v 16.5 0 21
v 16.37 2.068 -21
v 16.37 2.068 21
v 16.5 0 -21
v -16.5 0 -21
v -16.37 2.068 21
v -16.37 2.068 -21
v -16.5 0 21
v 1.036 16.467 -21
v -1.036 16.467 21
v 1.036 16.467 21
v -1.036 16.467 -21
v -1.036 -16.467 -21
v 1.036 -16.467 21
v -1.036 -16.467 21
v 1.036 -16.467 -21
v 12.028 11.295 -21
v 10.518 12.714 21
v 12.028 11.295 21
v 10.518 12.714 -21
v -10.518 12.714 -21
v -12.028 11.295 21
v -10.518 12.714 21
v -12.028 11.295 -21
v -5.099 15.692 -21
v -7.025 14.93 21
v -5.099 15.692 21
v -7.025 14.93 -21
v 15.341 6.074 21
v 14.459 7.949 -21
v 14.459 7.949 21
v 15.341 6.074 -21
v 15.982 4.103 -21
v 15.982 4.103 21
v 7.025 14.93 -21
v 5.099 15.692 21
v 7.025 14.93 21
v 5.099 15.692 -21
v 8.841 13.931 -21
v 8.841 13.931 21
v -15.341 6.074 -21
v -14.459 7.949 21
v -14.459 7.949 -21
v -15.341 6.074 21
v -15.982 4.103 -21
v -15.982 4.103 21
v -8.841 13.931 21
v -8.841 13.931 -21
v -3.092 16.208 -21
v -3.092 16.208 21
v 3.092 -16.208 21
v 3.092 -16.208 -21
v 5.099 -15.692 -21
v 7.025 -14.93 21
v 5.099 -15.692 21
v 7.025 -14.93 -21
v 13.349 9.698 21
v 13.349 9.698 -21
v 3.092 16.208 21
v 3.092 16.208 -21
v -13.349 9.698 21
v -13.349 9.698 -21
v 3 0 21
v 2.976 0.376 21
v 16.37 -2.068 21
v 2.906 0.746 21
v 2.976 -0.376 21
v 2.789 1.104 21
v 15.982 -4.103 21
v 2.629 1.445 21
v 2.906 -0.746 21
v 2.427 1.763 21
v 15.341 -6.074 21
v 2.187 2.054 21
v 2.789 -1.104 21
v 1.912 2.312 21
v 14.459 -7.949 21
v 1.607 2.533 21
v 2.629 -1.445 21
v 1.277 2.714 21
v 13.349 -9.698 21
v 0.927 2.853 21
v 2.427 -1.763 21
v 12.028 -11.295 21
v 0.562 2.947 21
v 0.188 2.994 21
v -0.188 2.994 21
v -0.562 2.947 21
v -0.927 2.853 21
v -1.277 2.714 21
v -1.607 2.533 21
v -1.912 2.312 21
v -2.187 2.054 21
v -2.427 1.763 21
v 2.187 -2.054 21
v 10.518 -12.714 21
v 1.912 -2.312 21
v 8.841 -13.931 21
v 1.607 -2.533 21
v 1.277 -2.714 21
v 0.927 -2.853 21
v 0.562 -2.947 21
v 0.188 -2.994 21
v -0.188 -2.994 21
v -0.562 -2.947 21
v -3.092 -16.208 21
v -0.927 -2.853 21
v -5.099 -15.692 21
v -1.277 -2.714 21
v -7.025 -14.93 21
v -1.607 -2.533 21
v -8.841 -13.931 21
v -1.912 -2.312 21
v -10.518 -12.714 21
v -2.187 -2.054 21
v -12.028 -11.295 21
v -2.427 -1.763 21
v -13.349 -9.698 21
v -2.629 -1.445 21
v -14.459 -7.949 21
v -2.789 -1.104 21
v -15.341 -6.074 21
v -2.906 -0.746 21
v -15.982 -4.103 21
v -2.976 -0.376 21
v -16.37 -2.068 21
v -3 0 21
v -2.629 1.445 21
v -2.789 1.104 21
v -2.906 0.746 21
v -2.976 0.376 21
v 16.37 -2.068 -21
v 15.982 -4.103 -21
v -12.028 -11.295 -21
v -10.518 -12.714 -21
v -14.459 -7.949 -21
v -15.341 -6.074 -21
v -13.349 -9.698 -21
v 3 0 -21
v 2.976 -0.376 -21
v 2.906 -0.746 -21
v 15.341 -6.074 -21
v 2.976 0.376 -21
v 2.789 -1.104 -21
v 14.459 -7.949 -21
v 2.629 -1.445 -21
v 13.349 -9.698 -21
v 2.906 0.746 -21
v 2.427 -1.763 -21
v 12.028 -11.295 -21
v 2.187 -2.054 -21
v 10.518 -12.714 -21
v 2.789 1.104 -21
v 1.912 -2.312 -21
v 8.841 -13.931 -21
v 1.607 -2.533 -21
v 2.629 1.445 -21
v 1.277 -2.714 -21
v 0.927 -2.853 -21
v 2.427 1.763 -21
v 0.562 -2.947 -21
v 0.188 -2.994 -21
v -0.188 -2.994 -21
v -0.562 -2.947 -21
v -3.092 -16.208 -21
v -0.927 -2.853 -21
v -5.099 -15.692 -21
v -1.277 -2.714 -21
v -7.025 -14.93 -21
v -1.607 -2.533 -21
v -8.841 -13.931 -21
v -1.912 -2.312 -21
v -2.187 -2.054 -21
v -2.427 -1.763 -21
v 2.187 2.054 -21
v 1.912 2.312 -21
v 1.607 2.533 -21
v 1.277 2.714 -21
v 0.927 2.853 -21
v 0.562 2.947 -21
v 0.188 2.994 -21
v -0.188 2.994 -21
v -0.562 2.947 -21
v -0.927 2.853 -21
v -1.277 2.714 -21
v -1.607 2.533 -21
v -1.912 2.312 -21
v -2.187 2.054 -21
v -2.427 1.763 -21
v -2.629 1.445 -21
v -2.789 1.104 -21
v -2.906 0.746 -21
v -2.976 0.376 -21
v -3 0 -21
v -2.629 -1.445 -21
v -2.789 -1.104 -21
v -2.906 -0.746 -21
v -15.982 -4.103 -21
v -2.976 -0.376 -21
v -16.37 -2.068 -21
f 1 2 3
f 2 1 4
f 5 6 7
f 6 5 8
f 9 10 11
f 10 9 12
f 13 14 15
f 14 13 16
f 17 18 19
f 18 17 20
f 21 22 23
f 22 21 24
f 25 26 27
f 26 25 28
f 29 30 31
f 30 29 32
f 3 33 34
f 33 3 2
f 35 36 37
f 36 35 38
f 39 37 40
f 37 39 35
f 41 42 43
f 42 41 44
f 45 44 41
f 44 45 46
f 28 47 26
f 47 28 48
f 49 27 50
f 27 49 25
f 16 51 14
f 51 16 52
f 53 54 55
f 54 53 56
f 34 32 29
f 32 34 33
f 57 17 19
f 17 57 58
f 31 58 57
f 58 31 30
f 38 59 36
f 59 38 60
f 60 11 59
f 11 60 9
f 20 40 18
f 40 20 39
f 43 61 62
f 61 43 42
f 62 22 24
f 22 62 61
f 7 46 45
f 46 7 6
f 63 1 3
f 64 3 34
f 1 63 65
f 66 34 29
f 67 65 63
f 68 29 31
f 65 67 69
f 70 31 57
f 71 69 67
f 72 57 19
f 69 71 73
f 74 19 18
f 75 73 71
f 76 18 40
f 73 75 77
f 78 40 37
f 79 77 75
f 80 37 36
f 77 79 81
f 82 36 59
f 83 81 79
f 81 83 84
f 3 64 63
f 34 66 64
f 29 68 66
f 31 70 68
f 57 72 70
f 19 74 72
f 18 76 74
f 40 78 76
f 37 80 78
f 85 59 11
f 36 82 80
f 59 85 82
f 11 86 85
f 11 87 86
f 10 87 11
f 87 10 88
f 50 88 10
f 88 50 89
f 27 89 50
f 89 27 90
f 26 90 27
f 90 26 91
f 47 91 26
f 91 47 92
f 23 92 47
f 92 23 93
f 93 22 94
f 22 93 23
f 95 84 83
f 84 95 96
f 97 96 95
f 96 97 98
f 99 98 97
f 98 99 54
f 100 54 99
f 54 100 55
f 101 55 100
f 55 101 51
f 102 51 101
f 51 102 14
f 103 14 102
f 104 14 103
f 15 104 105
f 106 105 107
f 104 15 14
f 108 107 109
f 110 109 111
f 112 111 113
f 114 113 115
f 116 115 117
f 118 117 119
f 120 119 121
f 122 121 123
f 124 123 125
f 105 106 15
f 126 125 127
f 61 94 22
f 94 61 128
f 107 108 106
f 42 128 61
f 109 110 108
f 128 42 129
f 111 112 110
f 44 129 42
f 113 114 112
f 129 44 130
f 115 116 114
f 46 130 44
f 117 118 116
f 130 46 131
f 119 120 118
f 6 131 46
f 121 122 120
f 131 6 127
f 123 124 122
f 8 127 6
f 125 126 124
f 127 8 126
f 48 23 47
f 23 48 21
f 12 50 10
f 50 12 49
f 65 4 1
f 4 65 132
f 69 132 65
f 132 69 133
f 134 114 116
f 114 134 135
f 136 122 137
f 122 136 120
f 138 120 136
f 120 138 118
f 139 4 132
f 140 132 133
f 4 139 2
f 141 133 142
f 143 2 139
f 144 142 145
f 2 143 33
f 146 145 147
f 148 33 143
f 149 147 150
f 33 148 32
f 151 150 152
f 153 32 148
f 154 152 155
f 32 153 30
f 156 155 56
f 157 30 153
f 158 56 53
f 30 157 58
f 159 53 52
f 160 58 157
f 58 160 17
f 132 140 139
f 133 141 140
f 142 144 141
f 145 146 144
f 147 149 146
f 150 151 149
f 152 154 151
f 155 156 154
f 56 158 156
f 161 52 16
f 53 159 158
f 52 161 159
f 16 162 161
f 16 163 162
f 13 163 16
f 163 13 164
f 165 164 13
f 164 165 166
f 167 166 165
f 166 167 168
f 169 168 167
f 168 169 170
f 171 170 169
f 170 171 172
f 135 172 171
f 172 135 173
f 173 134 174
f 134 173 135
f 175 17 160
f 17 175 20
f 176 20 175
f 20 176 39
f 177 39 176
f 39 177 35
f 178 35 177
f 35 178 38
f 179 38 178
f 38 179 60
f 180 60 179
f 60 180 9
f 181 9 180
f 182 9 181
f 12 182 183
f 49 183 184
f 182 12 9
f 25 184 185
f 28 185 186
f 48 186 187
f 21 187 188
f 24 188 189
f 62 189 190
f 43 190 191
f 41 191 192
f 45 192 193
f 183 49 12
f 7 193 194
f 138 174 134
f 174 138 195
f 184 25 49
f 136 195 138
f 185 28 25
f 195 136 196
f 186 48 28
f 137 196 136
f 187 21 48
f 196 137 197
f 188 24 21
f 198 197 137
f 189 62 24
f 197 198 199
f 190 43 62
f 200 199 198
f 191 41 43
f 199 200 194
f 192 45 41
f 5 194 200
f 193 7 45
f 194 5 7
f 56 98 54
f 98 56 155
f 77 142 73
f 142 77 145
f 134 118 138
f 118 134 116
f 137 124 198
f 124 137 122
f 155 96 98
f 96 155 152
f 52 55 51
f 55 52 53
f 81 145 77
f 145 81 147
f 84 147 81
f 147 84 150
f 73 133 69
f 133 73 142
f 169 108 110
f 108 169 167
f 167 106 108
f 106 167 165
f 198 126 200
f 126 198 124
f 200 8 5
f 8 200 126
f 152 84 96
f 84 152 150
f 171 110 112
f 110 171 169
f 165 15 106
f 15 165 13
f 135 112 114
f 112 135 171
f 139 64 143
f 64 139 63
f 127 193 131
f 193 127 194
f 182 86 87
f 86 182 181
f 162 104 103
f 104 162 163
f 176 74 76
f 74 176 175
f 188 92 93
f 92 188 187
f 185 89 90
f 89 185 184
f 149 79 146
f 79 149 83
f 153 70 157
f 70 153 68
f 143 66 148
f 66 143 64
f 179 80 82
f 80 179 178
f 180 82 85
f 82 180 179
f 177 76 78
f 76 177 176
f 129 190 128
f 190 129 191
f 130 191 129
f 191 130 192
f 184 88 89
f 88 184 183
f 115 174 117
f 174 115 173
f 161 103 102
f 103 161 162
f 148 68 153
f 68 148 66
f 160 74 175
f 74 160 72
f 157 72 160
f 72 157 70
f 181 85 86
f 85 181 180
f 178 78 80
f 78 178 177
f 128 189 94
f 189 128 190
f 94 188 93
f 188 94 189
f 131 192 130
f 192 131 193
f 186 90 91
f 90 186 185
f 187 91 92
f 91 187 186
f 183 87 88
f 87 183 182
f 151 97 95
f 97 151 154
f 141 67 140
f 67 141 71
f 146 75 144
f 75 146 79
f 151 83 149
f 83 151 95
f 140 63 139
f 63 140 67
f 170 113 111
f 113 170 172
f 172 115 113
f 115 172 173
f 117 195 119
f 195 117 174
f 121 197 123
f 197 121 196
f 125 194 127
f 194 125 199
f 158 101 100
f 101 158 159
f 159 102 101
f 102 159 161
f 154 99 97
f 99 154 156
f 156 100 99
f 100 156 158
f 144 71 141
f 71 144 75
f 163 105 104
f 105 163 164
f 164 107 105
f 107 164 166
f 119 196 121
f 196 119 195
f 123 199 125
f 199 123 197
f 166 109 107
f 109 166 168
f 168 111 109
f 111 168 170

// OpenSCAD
$fn = 50;


difference() {
	union() {
		translate(v = [0, 0, -21.0000000000]) {
			cylinder(h = 42, r = 16.5000000000);
		}
	}
	union() {
		translate(v = [0, 0, -100.0000000000]) {
			cylinder(h = 200, r = 3);
		}
	}
}
